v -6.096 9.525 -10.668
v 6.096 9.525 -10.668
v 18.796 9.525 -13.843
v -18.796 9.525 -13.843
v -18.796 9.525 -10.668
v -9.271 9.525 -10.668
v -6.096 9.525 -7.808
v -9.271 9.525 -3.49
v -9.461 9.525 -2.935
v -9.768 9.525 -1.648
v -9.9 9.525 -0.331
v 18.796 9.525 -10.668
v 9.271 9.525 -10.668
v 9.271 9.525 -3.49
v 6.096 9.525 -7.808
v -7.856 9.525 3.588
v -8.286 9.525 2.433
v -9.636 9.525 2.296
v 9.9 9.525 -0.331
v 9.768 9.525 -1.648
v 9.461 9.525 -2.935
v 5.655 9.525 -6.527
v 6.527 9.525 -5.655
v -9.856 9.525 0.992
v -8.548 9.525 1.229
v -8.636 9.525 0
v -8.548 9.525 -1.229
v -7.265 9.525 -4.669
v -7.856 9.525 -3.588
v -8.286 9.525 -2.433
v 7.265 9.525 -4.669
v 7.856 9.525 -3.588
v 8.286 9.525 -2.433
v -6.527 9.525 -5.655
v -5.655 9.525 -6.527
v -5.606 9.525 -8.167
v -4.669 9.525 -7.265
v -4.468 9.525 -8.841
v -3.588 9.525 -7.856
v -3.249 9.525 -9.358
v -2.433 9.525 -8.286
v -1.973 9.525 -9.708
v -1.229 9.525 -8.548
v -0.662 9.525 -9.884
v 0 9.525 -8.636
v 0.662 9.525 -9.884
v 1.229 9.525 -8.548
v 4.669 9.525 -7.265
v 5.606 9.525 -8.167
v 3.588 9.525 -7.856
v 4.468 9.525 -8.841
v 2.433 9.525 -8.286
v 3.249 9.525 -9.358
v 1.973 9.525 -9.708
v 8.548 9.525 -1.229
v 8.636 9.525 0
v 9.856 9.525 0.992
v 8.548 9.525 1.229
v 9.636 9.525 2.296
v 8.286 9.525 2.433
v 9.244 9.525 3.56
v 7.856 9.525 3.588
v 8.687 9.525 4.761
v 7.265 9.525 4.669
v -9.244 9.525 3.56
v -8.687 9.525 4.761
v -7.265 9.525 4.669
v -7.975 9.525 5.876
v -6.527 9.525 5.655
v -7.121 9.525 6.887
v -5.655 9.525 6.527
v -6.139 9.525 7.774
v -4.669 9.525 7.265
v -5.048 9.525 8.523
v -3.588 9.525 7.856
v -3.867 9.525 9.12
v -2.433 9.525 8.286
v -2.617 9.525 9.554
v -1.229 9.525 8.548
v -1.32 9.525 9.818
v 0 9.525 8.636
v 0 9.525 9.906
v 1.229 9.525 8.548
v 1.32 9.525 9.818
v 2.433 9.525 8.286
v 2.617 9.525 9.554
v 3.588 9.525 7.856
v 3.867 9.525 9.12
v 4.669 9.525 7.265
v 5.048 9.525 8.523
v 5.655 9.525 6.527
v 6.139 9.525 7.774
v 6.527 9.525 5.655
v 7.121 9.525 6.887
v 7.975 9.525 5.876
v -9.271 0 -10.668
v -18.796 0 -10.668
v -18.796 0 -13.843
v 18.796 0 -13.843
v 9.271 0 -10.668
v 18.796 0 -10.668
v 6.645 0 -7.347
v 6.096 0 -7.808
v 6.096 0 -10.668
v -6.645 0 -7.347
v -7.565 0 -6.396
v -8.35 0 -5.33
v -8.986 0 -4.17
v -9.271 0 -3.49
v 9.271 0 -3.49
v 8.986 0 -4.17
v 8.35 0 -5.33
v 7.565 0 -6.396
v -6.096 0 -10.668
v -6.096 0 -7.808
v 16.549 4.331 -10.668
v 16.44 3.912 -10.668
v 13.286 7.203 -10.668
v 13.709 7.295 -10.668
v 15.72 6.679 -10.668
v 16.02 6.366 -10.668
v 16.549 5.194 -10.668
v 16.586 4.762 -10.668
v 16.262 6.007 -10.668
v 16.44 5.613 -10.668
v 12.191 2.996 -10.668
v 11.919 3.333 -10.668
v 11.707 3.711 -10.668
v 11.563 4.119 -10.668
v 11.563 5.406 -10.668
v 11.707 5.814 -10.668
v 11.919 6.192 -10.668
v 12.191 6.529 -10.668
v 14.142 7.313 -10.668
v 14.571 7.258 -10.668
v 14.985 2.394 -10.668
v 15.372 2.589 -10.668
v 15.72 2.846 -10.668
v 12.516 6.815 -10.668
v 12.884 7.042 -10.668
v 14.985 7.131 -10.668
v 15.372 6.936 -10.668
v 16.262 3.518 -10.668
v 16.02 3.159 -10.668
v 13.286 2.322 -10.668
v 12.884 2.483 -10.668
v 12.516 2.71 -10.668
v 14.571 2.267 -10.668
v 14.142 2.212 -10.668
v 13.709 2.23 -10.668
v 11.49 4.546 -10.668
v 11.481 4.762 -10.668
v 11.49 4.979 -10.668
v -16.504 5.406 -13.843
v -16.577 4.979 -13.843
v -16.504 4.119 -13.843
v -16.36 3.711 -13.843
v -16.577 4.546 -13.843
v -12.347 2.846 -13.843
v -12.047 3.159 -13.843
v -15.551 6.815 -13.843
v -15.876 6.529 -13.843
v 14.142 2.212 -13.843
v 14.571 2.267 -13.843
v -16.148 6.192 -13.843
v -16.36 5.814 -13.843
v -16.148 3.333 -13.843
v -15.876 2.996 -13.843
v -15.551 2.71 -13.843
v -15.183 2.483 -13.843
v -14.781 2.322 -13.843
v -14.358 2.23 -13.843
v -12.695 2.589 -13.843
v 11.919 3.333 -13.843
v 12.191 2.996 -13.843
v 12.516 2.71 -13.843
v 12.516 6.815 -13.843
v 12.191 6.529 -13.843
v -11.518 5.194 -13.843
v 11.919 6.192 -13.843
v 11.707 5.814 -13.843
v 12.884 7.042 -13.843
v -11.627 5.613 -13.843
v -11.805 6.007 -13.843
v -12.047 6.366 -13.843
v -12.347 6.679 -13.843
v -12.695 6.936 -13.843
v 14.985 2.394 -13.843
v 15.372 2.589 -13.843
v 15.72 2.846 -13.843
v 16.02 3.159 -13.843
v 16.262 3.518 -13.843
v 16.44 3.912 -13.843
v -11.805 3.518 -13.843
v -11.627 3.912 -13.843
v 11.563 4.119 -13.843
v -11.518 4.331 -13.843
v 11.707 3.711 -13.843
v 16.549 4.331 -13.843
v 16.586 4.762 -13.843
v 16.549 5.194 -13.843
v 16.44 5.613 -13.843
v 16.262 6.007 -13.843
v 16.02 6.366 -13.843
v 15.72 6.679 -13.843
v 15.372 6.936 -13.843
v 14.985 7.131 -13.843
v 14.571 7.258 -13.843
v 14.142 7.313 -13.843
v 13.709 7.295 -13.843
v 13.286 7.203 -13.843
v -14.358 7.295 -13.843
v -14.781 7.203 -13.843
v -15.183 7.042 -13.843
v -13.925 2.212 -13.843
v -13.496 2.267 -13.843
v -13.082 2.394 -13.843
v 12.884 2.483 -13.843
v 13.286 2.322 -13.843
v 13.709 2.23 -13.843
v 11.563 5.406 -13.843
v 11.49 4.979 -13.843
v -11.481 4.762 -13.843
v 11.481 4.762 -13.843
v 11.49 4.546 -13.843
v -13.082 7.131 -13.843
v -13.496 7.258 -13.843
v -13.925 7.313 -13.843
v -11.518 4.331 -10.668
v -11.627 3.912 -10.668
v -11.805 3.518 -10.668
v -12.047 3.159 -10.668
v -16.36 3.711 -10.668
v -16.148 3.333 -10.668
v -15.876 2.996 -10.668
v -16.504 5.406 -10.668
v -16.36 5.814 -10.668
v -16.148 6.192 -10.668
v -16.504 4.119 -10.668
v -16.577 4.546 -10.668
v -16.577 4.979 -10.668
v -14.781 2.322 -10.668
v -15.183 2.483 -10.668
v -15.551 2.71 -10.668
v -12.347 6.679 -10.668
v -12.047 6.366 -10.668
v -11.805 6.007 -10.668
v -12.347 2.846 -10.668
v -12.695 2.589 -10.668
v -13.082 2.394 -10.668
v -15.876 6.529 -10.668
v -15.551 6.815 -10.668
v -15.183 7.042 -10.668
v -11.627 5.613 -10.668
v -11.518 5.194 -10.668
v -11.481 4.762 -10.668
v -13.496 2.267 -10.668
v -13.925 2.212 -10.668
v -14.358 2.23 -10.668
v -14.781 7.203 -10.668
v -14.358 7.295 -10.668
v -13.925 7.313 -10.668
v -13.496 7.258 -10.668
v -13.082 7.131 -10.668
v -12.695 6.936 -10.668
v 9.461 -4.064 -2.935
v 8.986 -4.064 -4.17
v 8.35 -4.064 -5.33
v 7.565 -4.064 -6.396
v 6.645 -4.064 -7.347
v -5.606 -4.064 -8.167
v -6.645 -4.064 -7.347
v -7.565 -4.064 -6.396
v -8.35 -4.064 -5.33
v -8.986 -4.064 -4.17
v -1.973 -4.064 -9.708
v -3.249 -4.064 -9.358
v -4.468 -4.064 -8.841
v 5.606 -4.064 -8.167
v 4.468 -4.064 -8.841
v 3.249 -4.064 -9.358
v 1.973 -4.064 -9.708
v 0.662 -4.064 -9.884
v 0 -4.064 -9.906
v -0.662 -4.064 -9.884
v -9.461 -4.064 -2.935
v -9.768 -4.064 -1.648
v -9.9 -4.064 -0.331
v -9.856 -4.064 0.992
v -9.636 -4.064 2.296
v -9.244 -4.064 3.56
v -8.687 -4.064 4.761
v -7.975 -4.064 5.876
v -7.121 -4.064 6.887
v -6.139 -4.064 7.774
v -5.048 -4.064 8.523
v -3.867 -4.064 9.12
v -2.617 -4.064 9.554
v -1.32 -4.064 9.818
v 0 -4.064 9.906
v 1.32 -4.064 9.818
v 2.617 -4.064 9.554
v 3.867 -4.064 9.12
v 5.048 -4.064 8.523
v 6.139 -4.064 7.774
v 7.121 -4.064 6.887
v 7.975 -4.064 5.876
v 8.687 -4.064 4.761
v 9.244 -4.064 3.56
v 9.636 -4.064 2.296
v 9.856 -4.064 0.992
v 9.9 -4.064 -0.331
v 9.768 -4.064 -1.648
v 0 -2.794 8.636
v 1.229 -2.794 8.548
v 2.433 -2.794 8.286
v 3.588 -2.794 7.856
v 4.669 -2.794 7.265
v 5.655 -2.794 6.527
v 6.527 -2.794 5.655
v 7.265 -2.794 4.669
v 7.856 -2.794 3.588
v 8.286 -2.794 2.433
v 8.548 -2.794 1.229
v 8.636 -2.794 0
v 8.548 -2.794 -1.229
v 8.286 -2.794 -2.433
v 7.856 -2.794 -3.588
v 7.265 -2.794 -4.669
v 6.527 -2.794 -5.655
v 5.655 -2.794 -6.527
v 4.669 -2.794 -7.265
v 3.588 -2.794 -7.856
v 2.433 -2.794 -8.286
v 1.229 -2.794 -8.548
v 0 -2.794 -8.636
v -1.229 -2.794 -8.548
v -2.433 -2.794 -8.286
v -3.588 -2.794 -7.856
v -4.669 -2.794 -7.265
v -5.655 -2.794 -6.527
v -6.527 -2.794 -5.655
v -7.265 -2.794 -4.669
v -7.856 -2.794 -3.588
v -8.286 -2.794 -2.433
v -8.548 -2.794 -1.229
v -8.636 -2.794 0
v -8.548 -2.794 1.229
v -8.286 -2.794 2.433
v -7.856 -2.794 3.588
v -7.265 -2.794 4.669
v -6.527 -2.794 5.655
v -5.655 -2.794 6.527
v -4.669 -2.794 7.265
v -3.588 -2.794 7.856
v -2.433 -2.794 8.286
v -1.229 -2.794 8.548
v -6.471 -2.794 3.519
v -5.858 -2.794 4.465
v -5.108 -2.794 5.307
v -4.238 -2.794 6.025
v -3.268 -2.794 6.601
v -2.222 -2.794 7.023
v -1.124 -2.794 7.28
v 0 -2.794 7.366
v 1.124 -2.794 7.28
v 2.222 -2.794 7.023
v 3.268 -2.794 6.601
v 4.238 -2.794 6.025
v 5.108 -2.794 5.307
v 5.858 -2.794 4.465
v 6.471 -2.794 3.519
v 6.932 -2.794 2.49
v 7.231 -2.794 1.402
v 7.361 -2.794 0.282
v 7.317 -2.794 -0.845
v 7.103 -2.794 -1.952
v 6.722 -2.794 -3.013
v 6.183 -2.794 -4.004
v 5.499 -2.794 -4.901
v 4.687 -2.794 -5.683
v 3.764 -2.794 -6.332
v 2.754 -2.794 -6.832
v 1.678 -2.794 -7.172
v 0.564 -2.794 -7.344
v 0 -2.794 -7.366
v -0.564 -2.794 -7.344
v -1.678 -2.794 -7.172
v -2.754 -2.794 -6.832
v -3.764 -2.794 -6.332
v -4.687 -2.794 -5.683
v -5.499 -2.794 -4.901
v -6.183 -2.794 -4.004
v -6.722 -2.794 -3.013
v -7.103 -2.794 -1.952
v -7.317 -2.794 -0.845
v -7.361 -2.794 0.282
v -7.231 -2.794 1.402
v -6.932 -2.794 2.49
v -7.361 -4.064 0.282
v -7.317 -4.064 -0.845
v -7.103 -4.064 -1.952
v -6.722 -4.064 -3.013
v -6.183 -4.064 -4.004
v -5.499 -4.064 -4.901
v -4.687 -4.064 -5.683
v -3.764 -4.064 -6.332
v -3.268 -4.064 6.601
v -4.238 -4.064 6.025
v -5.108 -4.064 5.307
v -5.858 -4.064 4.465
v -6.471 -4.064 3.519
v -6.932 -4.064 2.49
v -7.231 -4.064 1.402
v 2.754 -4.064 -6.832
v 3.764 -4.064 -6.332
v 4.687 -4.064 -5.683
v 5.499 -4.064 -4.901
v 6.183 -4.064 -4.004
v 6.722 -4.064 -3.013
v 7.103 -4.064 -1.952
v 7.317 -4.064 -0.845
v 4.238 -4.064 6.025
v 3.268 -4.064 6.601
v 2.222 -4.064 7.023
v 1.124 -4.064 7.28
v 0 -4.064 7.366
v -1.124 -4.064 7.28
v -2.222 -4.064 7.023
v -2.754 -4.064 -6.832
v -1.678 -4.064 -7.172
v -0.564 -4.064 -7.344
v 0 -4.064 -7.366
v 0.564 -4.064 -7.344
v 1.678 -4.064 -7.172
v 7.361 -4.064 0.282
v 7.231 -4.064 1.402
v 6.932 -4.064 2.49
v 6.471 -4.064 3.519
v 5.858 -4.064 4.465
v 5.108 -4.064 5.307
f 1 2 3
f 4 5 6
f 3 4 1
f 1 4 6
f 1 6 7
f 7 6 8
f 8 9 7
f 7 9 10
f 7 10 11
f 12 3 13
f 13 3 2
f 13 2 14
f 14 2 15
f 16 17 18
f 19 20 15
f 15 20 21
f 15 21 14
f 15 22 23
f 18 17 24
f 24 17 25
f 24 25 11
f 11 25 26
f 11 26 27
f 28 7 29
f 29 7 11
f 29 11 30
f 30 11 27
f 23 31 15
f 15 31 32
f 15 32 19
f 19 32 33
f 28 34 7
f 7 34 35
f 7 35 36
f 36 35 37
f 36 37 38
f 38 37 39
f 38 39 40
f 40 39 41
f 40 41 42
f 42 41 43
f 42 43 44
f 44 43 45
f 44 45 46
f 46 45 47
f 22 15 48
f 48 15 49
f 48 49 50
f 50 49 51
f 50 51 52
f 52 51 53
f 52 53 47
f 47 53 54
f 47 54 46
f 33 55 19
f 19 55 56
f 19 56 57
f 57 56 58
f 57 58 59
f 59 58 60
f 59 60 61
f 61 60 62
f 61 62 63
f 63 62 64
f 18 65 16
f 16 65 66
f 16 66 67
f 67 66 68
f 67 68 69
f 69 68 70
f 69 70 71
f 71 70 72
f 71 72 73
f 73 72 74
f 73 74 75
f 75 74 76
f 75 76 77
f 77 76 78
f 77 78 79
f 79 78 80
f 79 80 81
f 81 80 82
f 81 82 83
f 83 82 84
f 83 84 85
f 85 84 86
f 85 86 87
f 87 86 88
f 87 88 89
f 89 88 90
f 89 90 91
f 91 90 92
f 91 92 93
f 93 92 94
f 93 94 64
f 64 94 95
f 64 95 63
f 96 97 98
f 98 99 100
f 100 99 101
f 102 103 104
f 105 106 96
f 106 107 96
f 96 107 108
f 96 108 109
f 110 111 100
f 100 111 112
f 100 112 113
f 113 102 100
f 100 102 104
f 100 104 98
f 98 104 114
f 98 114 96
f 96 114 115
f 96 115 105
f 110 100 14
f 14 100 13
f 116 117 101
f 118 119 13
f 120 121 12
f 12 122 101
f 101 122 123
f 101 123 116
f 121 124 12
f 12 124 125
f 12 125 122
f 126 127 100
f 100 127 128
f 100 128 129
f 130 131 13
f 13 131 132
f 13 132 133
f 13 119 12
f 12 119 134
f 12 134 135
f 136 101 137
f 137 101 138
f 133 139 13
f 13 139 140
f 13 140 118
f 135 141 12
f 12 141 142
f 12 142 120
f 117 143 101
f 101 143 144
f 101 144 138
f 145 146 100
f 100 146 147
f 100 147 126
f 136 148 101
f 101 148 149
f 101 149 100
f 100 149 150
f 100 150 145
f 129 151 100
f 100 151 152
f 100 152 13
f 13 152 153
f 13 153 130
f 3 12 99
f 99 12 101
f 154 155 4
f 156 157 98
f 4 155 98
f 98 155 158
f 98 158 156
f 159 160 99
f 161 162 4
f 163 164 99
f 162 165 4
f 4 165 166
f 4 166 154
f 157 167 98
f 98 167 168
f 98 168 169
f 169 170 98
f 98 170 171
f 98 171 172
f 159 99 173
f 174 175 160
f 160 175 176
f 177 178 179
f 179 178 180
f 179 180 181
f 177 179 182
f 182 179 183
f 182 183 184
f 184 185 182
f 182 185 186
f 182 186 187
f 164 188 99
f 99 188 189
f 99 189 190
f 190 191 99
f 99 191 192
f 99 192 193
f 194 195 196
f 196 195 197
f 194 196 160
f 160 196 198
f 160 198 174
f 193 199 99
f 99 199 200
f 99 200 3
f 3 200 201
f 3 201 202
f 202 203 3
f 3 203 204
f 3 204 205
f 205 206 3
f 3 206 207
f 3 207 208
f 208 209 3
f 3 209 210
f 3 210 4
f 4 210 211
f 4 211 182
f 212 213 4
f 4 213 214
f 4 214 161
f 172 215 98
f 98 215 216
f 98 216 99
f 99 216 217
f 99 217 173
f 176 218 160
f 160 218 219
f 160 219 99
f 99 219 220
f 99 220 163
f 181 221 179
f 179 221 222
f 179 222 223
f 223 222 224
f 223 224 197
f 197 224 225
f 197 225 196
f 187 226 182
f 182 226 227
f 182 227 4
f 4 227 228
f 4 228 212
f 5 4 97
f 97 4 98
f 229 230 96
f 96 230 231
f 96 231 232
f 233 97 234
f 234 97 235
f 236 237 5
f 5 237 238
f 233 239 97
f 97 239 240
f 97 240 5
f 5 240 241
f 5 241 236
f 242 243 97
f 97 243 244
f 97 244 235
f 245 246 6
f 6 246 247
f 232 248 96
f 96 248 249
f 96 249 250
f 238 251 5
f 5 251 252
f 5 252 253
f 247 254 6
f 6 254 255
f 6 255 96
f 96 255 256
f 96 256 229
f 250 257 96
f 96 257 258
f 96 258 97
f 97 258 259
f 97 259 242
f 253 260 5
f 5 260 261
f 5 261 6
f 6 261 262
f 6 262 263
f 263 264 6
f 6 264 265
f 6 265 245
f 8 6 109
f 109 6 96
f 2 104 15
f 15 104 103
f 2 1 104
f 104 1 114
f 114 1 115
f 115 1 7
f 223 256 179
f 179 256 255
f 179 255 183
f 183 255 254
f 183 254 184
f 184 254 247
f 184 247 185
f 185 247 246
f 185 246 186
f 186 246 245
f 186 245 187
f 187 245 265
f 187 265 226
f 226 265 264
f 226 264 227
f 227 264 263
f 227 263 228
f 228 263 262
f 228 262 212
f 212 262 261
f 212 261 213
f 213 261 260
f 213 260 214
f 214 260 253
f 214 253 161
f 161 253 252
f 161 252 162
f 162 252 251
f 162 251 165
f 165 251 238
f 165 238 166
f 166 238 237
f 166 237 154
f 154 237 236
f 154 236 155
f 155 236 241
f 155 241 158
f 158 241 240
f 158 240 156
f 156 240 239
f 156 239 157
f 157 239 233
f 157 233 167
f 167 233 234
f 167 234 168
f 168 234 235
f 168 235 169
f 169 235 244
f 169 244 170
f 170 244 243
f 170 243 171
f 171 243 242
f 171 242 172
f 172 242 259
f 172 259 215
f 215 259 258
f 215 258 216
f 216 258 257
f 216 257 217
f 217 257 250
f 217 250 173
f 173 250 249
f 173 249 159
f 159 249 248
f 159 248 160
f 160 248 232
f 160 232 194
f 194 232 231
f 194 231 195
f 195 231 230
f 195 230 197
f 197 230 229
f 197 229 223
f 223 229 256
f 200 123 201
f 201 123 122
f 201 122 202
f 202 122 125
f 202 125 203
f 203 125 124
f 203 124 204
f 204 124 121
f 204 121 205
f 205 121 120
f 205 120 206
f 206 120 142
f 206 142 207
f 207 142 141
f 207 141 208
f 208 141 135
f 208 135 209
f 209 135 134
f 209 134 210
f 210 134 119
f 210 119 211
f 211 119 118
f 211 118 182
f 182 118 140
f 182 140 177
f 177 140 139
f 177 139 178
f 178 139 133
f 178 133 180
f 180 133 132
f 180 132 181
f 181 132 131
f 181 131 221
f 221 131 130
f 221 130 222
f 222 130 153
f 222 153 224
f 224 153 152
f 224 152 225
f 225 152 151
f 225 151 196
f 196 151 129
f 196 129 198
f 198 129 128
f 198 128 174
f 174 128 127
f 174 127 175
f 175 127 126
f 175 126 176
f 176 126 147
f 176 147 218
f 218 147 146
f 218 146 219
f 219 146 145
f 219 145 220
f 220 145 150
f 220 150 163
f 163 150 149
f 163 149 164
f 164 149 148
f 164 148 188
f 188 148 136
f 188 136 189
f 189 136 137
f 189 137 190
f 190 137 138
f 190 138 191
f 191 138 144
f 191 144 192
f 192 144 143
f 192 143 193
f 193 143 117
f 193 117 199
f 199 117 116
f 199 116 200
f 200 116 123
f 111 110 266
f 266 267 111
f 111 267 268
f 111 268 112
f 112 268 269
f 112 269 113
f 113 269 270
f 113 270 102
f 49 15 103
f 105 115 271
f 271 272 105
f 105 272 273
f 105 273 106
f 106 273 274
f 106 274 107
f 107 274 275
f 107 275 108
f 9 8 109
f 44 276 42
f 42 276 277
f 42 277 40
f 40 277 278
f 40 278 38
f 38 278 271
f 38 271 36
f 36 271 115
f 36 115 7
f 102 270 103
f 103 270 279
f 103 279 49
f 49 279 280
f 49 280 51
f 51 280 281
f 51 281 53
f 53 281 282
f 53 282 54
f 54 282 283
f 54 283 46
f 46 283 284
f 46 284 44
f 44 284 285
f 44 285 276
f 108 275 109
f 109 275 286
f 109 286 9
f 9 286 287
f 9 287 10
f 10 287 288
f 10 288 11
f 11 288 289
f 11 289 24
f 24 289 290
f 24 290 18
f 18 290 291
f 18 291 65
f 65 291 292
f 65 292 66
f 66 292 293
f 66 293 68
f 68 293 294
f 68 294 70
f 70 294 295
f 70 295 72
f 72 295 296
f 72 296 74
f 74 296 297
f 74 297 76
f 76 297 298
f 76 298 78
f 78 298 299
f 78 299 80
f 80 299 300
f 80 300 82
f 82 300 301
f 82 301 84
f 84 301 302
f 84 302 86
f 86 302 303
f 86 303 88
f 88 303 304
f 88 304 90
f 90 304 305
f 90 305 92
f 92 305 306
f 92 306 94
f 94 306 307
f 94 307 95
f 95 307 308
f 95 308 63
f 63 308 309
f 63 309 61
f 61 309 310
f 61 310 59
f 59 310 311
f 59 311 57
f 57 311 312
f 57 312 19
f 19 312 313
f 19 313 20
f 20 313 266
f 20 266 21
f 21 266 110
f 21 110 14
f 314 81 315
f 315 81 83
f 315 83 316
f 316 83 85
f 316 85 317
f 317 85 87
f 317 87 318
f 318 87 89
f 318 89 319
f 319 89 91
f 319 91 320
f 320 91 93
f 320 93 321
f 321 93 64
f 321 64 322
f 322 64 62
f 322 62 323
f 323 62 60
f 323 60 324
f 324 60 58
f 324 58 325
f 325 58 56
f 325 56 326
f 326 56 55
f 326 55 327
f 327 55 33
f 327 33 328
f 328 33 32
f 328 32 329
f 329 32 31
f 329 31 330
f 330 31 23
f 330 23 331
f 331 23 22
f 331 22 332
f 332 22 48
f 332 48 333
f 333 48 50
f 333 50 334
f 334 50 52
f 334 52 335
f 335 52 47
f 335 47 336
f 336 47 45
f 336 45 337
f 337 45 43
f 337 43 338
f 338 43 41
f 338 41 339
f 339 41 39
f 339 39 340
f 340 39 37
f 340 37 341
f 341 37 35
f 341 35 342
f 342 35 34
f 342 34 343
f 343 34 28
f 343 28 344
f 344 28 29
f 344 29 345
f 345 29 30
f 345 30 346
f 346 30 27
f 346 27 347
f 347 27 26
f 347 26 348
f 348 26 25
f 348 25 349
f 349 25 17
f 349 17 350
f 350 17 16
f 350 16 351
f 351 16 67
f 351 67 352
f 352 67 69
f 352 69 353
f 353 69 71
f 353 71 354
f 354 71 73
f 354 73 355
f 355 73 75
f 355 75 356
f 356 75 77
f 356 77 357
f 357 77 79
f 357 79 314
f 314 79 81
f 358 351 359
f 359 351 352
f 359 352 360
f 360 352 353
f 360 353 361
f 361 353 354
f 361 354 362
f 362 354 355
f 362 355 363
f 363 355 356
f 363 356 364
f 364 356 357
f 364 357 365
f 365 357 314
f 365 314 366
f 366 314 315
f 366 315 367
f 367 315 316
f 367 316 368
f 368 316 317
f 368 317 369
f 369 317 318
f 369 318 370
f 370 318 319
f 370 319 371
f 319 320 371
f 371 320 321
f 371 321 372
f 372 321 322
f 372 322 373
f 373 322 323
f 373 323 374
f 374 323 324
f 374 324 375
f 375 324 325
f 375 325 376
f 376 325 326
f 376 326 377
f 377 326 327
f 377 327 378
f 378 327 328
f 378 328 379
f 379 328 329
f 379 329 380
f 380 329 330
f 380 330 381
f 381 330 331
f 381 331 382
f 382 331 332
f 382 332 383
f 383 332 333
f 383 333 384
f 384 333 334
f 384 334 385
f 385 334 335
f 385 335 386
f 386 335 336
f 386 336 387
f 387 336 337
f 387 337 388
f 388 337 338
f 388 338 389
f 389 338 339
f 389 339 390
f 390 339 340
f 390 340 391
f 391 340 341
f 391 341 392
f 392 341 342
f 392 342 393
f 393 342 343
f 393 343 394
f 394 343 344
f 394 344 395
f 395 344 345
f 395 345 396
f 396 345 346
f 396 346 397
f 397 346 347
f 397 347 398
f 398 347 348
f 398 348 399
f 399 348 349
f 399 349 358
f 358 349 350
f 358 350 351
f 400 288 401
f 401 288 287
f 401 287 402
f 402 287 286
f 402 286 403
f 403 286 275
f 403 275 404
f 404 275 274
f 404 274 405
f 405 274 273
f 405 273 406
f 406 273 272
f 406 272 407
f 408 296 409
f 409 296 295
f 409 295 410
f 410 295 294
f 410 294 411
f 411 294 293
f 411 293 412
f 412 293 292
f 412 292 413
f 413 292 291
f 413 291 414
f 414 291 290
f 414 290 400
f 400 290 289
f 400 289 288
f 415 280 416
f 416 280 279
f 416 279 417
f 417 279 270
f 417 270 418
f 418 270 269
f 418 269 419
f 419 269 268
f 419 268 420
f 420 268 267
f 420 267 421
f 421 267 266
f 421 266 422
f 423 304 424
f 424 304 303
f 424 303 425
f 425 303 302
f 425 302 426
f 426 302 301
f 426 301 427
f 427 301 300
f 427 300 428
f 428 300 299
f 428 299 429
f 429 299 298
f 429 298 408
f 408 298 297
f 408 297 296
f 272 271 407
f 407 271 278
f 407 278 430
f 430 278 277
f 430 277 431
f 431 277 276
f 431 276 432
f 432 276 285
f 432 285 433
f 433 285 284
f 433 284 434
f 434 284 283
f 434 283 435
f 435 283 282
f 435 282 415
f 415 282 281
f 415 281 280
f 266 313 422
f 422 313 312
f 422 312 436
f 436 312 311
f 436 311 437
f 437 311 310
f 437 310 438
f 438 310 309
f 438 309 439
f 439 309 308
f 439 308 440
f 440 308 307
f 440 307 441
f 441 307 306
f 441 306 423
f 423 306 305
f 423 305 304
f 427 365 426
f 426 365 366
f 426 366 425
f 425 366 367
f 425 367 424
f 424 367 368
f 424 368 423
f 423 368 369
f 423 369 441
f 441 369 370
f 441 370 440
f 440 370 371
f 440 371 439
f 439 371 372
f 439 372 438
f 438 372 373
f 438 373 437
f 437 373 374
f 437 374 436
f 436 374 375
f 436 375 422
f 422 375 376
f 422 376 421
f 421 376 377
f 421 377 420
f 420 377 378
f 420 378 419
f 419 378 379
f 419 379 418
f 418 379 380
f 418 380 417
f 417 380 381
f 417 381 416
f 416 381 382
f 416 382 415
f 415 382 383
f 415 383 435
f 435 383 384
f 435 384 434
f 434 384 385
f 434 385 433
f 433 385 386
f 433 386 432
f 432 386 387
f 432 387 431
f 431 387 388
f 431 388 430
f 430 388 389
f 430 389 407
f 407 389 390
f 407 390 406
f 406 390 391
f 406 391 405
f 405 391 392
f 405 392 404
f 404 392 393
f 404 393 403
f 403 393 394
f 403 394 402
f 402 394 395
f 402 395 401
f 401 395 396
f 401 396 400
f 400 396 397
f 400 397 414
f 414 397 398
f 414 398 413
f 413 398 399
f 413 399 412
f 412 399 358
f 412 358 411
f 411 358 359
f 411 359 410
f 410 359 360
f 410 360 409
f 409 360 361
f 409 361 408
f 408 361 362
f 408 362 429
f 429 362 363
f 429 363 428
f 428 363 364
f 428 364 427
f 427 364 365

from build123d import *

# Parameters (mm, degrees)
SKETCH1_R           = 6.096
BOSS_EXTRUDE1_DEPTH = 9.525
SKETCH2_R           = 2.5527
CUT_EXTRUDE1_DEPTH  = 4.175
SKETCH3_R           = 9.271
SKETCH3_R_2         = 6.096
BOSS_EXTRUDE2_DEPTH = 2.794
SKETCH6_R           = 9.906
SKETCH6_R_2         = 8.636
BOSS_EXTRUDE4_DEPTH = 12.319
SKETCH5_R           = 8.636
CUT_EXTRUDE2_DEPTH  = 12.319
SKETCH4_R           = 9.906
SKETCH4_R_2         = 7.366
BOSS_EXTRUDE3_DEPTH = 1.27


with BuildPart() as part:
    # Sketch1 → Boss-Extrude1 (new body)
    with BuildSketch(Plane(origin=(0, 0, 0), x_dir=(1, 0, 0), z_dir=(0, 1, 0))):
        with BuildLine():
            Line((-9.271, 0), (-9.271, 10.668))
            Line((-9.271, 10.668), (-18.796, 10.668))
            Line((-18.796, 10.668), (-18.796, 13.843))
            Line((-18.796, 13.843), (-6.096, 13.843))
            Line((-6.096, 13.843), (6.096, 13.843))
            Line((6.096, 13.843), (18.796, 13.843))
            Line((18.796, 13.843), (18.796, 10.668))
            Line((18.796, 10.668), (9.271, 10.668))
            Line((9.271, 10.668), (9.271, 0))
            ThreePointArc((9.271, 0), (0, -9.271), (-9.271, 0))
        make_face()
        Circle(SKETCH1_R, mode=Mode.SUBTRACT)
        with BuildLine():
            Line((-6.096, 6.731), (-6.096, 10.668))
            Line((-6.096, 10.668), (6.096, 10.668))
            Line((6.096, 10.668), (6.096, 6.731))
            ThreePointArc((6.096, 6.731), (0, 9.081166059), (-6.096, 6.731))
        make_face(mode=Mode.SUBTRACT)
    extrude(amount=BOSS_EXTRUDE1_DEPTH)

    # Sketch2 → Cut-Extrude1 (cut, through all)
    with BuildSketch(Plane.XY.offset(-10.668)):
        with Locations((-14.0335, 4.7625)):
            Circle(SKETCH2_R)
        with Locations((14.0335, 4.7625)):
            Circle(SKETCH2_R)
    extrude(amount=-CUT_EXTRUDE1_DEPTH, mode=Mode.SUBTRACT)

    # Sketch3 → Boss-Extrude2 (add)
    with BuildSketch(Plane(origin=(0, 0, 0), x_dir=(-1, 0, 0), z_dir=(0, -1, 0))):
        Circle(SKETCH3_R)
        Circle(SKETCH3_R_2, mode=Mode.SUBTRACT)
    extrude(amount=BOSS_EXTRUDE2_DEPTH)

    # Sketch6 → Boss-Extrude4 (add)
    with BuildSketch(Plane(origin=(0, 9.525, 0), x_dir=(1, 0, 0), z_dir=(0, 1, 0))):
        Circle(SKETCH6_R)
        Circle(SKETCH6_R_2, mode=Mode.SUBTRACT)
    extrude(amount=-BOSS_EXTRUDE4_DEPTH)

    # Sketch5 → Cut-Extrude2 (cut)
    with BuildSketch(Plane(origin=(0, 9.525, 0), x_dir=(1, 0, 0), z_dir=(0, 1, 0))):
        Circle(SKETCH5_R)
    extrude(amount=-CUT_EXTRUDE2_DEPTH, mode=Mode.SUBTRACT)

    # Sketch4 → Boss-Extrude3 (add)
    with BuildSketch(Plane(origin=(0, -2.794, 0), x_dir=(-1, 0, 0), z_dir=(0, -1, 0))):
        Circle(SKETCH4_R)
        Circle(SKETCH4_R_2, mode=Mode.SUBTRACT)
    extrude(amount=BOSS_EXTRUDE3_DEPTH)


solid = part.part
